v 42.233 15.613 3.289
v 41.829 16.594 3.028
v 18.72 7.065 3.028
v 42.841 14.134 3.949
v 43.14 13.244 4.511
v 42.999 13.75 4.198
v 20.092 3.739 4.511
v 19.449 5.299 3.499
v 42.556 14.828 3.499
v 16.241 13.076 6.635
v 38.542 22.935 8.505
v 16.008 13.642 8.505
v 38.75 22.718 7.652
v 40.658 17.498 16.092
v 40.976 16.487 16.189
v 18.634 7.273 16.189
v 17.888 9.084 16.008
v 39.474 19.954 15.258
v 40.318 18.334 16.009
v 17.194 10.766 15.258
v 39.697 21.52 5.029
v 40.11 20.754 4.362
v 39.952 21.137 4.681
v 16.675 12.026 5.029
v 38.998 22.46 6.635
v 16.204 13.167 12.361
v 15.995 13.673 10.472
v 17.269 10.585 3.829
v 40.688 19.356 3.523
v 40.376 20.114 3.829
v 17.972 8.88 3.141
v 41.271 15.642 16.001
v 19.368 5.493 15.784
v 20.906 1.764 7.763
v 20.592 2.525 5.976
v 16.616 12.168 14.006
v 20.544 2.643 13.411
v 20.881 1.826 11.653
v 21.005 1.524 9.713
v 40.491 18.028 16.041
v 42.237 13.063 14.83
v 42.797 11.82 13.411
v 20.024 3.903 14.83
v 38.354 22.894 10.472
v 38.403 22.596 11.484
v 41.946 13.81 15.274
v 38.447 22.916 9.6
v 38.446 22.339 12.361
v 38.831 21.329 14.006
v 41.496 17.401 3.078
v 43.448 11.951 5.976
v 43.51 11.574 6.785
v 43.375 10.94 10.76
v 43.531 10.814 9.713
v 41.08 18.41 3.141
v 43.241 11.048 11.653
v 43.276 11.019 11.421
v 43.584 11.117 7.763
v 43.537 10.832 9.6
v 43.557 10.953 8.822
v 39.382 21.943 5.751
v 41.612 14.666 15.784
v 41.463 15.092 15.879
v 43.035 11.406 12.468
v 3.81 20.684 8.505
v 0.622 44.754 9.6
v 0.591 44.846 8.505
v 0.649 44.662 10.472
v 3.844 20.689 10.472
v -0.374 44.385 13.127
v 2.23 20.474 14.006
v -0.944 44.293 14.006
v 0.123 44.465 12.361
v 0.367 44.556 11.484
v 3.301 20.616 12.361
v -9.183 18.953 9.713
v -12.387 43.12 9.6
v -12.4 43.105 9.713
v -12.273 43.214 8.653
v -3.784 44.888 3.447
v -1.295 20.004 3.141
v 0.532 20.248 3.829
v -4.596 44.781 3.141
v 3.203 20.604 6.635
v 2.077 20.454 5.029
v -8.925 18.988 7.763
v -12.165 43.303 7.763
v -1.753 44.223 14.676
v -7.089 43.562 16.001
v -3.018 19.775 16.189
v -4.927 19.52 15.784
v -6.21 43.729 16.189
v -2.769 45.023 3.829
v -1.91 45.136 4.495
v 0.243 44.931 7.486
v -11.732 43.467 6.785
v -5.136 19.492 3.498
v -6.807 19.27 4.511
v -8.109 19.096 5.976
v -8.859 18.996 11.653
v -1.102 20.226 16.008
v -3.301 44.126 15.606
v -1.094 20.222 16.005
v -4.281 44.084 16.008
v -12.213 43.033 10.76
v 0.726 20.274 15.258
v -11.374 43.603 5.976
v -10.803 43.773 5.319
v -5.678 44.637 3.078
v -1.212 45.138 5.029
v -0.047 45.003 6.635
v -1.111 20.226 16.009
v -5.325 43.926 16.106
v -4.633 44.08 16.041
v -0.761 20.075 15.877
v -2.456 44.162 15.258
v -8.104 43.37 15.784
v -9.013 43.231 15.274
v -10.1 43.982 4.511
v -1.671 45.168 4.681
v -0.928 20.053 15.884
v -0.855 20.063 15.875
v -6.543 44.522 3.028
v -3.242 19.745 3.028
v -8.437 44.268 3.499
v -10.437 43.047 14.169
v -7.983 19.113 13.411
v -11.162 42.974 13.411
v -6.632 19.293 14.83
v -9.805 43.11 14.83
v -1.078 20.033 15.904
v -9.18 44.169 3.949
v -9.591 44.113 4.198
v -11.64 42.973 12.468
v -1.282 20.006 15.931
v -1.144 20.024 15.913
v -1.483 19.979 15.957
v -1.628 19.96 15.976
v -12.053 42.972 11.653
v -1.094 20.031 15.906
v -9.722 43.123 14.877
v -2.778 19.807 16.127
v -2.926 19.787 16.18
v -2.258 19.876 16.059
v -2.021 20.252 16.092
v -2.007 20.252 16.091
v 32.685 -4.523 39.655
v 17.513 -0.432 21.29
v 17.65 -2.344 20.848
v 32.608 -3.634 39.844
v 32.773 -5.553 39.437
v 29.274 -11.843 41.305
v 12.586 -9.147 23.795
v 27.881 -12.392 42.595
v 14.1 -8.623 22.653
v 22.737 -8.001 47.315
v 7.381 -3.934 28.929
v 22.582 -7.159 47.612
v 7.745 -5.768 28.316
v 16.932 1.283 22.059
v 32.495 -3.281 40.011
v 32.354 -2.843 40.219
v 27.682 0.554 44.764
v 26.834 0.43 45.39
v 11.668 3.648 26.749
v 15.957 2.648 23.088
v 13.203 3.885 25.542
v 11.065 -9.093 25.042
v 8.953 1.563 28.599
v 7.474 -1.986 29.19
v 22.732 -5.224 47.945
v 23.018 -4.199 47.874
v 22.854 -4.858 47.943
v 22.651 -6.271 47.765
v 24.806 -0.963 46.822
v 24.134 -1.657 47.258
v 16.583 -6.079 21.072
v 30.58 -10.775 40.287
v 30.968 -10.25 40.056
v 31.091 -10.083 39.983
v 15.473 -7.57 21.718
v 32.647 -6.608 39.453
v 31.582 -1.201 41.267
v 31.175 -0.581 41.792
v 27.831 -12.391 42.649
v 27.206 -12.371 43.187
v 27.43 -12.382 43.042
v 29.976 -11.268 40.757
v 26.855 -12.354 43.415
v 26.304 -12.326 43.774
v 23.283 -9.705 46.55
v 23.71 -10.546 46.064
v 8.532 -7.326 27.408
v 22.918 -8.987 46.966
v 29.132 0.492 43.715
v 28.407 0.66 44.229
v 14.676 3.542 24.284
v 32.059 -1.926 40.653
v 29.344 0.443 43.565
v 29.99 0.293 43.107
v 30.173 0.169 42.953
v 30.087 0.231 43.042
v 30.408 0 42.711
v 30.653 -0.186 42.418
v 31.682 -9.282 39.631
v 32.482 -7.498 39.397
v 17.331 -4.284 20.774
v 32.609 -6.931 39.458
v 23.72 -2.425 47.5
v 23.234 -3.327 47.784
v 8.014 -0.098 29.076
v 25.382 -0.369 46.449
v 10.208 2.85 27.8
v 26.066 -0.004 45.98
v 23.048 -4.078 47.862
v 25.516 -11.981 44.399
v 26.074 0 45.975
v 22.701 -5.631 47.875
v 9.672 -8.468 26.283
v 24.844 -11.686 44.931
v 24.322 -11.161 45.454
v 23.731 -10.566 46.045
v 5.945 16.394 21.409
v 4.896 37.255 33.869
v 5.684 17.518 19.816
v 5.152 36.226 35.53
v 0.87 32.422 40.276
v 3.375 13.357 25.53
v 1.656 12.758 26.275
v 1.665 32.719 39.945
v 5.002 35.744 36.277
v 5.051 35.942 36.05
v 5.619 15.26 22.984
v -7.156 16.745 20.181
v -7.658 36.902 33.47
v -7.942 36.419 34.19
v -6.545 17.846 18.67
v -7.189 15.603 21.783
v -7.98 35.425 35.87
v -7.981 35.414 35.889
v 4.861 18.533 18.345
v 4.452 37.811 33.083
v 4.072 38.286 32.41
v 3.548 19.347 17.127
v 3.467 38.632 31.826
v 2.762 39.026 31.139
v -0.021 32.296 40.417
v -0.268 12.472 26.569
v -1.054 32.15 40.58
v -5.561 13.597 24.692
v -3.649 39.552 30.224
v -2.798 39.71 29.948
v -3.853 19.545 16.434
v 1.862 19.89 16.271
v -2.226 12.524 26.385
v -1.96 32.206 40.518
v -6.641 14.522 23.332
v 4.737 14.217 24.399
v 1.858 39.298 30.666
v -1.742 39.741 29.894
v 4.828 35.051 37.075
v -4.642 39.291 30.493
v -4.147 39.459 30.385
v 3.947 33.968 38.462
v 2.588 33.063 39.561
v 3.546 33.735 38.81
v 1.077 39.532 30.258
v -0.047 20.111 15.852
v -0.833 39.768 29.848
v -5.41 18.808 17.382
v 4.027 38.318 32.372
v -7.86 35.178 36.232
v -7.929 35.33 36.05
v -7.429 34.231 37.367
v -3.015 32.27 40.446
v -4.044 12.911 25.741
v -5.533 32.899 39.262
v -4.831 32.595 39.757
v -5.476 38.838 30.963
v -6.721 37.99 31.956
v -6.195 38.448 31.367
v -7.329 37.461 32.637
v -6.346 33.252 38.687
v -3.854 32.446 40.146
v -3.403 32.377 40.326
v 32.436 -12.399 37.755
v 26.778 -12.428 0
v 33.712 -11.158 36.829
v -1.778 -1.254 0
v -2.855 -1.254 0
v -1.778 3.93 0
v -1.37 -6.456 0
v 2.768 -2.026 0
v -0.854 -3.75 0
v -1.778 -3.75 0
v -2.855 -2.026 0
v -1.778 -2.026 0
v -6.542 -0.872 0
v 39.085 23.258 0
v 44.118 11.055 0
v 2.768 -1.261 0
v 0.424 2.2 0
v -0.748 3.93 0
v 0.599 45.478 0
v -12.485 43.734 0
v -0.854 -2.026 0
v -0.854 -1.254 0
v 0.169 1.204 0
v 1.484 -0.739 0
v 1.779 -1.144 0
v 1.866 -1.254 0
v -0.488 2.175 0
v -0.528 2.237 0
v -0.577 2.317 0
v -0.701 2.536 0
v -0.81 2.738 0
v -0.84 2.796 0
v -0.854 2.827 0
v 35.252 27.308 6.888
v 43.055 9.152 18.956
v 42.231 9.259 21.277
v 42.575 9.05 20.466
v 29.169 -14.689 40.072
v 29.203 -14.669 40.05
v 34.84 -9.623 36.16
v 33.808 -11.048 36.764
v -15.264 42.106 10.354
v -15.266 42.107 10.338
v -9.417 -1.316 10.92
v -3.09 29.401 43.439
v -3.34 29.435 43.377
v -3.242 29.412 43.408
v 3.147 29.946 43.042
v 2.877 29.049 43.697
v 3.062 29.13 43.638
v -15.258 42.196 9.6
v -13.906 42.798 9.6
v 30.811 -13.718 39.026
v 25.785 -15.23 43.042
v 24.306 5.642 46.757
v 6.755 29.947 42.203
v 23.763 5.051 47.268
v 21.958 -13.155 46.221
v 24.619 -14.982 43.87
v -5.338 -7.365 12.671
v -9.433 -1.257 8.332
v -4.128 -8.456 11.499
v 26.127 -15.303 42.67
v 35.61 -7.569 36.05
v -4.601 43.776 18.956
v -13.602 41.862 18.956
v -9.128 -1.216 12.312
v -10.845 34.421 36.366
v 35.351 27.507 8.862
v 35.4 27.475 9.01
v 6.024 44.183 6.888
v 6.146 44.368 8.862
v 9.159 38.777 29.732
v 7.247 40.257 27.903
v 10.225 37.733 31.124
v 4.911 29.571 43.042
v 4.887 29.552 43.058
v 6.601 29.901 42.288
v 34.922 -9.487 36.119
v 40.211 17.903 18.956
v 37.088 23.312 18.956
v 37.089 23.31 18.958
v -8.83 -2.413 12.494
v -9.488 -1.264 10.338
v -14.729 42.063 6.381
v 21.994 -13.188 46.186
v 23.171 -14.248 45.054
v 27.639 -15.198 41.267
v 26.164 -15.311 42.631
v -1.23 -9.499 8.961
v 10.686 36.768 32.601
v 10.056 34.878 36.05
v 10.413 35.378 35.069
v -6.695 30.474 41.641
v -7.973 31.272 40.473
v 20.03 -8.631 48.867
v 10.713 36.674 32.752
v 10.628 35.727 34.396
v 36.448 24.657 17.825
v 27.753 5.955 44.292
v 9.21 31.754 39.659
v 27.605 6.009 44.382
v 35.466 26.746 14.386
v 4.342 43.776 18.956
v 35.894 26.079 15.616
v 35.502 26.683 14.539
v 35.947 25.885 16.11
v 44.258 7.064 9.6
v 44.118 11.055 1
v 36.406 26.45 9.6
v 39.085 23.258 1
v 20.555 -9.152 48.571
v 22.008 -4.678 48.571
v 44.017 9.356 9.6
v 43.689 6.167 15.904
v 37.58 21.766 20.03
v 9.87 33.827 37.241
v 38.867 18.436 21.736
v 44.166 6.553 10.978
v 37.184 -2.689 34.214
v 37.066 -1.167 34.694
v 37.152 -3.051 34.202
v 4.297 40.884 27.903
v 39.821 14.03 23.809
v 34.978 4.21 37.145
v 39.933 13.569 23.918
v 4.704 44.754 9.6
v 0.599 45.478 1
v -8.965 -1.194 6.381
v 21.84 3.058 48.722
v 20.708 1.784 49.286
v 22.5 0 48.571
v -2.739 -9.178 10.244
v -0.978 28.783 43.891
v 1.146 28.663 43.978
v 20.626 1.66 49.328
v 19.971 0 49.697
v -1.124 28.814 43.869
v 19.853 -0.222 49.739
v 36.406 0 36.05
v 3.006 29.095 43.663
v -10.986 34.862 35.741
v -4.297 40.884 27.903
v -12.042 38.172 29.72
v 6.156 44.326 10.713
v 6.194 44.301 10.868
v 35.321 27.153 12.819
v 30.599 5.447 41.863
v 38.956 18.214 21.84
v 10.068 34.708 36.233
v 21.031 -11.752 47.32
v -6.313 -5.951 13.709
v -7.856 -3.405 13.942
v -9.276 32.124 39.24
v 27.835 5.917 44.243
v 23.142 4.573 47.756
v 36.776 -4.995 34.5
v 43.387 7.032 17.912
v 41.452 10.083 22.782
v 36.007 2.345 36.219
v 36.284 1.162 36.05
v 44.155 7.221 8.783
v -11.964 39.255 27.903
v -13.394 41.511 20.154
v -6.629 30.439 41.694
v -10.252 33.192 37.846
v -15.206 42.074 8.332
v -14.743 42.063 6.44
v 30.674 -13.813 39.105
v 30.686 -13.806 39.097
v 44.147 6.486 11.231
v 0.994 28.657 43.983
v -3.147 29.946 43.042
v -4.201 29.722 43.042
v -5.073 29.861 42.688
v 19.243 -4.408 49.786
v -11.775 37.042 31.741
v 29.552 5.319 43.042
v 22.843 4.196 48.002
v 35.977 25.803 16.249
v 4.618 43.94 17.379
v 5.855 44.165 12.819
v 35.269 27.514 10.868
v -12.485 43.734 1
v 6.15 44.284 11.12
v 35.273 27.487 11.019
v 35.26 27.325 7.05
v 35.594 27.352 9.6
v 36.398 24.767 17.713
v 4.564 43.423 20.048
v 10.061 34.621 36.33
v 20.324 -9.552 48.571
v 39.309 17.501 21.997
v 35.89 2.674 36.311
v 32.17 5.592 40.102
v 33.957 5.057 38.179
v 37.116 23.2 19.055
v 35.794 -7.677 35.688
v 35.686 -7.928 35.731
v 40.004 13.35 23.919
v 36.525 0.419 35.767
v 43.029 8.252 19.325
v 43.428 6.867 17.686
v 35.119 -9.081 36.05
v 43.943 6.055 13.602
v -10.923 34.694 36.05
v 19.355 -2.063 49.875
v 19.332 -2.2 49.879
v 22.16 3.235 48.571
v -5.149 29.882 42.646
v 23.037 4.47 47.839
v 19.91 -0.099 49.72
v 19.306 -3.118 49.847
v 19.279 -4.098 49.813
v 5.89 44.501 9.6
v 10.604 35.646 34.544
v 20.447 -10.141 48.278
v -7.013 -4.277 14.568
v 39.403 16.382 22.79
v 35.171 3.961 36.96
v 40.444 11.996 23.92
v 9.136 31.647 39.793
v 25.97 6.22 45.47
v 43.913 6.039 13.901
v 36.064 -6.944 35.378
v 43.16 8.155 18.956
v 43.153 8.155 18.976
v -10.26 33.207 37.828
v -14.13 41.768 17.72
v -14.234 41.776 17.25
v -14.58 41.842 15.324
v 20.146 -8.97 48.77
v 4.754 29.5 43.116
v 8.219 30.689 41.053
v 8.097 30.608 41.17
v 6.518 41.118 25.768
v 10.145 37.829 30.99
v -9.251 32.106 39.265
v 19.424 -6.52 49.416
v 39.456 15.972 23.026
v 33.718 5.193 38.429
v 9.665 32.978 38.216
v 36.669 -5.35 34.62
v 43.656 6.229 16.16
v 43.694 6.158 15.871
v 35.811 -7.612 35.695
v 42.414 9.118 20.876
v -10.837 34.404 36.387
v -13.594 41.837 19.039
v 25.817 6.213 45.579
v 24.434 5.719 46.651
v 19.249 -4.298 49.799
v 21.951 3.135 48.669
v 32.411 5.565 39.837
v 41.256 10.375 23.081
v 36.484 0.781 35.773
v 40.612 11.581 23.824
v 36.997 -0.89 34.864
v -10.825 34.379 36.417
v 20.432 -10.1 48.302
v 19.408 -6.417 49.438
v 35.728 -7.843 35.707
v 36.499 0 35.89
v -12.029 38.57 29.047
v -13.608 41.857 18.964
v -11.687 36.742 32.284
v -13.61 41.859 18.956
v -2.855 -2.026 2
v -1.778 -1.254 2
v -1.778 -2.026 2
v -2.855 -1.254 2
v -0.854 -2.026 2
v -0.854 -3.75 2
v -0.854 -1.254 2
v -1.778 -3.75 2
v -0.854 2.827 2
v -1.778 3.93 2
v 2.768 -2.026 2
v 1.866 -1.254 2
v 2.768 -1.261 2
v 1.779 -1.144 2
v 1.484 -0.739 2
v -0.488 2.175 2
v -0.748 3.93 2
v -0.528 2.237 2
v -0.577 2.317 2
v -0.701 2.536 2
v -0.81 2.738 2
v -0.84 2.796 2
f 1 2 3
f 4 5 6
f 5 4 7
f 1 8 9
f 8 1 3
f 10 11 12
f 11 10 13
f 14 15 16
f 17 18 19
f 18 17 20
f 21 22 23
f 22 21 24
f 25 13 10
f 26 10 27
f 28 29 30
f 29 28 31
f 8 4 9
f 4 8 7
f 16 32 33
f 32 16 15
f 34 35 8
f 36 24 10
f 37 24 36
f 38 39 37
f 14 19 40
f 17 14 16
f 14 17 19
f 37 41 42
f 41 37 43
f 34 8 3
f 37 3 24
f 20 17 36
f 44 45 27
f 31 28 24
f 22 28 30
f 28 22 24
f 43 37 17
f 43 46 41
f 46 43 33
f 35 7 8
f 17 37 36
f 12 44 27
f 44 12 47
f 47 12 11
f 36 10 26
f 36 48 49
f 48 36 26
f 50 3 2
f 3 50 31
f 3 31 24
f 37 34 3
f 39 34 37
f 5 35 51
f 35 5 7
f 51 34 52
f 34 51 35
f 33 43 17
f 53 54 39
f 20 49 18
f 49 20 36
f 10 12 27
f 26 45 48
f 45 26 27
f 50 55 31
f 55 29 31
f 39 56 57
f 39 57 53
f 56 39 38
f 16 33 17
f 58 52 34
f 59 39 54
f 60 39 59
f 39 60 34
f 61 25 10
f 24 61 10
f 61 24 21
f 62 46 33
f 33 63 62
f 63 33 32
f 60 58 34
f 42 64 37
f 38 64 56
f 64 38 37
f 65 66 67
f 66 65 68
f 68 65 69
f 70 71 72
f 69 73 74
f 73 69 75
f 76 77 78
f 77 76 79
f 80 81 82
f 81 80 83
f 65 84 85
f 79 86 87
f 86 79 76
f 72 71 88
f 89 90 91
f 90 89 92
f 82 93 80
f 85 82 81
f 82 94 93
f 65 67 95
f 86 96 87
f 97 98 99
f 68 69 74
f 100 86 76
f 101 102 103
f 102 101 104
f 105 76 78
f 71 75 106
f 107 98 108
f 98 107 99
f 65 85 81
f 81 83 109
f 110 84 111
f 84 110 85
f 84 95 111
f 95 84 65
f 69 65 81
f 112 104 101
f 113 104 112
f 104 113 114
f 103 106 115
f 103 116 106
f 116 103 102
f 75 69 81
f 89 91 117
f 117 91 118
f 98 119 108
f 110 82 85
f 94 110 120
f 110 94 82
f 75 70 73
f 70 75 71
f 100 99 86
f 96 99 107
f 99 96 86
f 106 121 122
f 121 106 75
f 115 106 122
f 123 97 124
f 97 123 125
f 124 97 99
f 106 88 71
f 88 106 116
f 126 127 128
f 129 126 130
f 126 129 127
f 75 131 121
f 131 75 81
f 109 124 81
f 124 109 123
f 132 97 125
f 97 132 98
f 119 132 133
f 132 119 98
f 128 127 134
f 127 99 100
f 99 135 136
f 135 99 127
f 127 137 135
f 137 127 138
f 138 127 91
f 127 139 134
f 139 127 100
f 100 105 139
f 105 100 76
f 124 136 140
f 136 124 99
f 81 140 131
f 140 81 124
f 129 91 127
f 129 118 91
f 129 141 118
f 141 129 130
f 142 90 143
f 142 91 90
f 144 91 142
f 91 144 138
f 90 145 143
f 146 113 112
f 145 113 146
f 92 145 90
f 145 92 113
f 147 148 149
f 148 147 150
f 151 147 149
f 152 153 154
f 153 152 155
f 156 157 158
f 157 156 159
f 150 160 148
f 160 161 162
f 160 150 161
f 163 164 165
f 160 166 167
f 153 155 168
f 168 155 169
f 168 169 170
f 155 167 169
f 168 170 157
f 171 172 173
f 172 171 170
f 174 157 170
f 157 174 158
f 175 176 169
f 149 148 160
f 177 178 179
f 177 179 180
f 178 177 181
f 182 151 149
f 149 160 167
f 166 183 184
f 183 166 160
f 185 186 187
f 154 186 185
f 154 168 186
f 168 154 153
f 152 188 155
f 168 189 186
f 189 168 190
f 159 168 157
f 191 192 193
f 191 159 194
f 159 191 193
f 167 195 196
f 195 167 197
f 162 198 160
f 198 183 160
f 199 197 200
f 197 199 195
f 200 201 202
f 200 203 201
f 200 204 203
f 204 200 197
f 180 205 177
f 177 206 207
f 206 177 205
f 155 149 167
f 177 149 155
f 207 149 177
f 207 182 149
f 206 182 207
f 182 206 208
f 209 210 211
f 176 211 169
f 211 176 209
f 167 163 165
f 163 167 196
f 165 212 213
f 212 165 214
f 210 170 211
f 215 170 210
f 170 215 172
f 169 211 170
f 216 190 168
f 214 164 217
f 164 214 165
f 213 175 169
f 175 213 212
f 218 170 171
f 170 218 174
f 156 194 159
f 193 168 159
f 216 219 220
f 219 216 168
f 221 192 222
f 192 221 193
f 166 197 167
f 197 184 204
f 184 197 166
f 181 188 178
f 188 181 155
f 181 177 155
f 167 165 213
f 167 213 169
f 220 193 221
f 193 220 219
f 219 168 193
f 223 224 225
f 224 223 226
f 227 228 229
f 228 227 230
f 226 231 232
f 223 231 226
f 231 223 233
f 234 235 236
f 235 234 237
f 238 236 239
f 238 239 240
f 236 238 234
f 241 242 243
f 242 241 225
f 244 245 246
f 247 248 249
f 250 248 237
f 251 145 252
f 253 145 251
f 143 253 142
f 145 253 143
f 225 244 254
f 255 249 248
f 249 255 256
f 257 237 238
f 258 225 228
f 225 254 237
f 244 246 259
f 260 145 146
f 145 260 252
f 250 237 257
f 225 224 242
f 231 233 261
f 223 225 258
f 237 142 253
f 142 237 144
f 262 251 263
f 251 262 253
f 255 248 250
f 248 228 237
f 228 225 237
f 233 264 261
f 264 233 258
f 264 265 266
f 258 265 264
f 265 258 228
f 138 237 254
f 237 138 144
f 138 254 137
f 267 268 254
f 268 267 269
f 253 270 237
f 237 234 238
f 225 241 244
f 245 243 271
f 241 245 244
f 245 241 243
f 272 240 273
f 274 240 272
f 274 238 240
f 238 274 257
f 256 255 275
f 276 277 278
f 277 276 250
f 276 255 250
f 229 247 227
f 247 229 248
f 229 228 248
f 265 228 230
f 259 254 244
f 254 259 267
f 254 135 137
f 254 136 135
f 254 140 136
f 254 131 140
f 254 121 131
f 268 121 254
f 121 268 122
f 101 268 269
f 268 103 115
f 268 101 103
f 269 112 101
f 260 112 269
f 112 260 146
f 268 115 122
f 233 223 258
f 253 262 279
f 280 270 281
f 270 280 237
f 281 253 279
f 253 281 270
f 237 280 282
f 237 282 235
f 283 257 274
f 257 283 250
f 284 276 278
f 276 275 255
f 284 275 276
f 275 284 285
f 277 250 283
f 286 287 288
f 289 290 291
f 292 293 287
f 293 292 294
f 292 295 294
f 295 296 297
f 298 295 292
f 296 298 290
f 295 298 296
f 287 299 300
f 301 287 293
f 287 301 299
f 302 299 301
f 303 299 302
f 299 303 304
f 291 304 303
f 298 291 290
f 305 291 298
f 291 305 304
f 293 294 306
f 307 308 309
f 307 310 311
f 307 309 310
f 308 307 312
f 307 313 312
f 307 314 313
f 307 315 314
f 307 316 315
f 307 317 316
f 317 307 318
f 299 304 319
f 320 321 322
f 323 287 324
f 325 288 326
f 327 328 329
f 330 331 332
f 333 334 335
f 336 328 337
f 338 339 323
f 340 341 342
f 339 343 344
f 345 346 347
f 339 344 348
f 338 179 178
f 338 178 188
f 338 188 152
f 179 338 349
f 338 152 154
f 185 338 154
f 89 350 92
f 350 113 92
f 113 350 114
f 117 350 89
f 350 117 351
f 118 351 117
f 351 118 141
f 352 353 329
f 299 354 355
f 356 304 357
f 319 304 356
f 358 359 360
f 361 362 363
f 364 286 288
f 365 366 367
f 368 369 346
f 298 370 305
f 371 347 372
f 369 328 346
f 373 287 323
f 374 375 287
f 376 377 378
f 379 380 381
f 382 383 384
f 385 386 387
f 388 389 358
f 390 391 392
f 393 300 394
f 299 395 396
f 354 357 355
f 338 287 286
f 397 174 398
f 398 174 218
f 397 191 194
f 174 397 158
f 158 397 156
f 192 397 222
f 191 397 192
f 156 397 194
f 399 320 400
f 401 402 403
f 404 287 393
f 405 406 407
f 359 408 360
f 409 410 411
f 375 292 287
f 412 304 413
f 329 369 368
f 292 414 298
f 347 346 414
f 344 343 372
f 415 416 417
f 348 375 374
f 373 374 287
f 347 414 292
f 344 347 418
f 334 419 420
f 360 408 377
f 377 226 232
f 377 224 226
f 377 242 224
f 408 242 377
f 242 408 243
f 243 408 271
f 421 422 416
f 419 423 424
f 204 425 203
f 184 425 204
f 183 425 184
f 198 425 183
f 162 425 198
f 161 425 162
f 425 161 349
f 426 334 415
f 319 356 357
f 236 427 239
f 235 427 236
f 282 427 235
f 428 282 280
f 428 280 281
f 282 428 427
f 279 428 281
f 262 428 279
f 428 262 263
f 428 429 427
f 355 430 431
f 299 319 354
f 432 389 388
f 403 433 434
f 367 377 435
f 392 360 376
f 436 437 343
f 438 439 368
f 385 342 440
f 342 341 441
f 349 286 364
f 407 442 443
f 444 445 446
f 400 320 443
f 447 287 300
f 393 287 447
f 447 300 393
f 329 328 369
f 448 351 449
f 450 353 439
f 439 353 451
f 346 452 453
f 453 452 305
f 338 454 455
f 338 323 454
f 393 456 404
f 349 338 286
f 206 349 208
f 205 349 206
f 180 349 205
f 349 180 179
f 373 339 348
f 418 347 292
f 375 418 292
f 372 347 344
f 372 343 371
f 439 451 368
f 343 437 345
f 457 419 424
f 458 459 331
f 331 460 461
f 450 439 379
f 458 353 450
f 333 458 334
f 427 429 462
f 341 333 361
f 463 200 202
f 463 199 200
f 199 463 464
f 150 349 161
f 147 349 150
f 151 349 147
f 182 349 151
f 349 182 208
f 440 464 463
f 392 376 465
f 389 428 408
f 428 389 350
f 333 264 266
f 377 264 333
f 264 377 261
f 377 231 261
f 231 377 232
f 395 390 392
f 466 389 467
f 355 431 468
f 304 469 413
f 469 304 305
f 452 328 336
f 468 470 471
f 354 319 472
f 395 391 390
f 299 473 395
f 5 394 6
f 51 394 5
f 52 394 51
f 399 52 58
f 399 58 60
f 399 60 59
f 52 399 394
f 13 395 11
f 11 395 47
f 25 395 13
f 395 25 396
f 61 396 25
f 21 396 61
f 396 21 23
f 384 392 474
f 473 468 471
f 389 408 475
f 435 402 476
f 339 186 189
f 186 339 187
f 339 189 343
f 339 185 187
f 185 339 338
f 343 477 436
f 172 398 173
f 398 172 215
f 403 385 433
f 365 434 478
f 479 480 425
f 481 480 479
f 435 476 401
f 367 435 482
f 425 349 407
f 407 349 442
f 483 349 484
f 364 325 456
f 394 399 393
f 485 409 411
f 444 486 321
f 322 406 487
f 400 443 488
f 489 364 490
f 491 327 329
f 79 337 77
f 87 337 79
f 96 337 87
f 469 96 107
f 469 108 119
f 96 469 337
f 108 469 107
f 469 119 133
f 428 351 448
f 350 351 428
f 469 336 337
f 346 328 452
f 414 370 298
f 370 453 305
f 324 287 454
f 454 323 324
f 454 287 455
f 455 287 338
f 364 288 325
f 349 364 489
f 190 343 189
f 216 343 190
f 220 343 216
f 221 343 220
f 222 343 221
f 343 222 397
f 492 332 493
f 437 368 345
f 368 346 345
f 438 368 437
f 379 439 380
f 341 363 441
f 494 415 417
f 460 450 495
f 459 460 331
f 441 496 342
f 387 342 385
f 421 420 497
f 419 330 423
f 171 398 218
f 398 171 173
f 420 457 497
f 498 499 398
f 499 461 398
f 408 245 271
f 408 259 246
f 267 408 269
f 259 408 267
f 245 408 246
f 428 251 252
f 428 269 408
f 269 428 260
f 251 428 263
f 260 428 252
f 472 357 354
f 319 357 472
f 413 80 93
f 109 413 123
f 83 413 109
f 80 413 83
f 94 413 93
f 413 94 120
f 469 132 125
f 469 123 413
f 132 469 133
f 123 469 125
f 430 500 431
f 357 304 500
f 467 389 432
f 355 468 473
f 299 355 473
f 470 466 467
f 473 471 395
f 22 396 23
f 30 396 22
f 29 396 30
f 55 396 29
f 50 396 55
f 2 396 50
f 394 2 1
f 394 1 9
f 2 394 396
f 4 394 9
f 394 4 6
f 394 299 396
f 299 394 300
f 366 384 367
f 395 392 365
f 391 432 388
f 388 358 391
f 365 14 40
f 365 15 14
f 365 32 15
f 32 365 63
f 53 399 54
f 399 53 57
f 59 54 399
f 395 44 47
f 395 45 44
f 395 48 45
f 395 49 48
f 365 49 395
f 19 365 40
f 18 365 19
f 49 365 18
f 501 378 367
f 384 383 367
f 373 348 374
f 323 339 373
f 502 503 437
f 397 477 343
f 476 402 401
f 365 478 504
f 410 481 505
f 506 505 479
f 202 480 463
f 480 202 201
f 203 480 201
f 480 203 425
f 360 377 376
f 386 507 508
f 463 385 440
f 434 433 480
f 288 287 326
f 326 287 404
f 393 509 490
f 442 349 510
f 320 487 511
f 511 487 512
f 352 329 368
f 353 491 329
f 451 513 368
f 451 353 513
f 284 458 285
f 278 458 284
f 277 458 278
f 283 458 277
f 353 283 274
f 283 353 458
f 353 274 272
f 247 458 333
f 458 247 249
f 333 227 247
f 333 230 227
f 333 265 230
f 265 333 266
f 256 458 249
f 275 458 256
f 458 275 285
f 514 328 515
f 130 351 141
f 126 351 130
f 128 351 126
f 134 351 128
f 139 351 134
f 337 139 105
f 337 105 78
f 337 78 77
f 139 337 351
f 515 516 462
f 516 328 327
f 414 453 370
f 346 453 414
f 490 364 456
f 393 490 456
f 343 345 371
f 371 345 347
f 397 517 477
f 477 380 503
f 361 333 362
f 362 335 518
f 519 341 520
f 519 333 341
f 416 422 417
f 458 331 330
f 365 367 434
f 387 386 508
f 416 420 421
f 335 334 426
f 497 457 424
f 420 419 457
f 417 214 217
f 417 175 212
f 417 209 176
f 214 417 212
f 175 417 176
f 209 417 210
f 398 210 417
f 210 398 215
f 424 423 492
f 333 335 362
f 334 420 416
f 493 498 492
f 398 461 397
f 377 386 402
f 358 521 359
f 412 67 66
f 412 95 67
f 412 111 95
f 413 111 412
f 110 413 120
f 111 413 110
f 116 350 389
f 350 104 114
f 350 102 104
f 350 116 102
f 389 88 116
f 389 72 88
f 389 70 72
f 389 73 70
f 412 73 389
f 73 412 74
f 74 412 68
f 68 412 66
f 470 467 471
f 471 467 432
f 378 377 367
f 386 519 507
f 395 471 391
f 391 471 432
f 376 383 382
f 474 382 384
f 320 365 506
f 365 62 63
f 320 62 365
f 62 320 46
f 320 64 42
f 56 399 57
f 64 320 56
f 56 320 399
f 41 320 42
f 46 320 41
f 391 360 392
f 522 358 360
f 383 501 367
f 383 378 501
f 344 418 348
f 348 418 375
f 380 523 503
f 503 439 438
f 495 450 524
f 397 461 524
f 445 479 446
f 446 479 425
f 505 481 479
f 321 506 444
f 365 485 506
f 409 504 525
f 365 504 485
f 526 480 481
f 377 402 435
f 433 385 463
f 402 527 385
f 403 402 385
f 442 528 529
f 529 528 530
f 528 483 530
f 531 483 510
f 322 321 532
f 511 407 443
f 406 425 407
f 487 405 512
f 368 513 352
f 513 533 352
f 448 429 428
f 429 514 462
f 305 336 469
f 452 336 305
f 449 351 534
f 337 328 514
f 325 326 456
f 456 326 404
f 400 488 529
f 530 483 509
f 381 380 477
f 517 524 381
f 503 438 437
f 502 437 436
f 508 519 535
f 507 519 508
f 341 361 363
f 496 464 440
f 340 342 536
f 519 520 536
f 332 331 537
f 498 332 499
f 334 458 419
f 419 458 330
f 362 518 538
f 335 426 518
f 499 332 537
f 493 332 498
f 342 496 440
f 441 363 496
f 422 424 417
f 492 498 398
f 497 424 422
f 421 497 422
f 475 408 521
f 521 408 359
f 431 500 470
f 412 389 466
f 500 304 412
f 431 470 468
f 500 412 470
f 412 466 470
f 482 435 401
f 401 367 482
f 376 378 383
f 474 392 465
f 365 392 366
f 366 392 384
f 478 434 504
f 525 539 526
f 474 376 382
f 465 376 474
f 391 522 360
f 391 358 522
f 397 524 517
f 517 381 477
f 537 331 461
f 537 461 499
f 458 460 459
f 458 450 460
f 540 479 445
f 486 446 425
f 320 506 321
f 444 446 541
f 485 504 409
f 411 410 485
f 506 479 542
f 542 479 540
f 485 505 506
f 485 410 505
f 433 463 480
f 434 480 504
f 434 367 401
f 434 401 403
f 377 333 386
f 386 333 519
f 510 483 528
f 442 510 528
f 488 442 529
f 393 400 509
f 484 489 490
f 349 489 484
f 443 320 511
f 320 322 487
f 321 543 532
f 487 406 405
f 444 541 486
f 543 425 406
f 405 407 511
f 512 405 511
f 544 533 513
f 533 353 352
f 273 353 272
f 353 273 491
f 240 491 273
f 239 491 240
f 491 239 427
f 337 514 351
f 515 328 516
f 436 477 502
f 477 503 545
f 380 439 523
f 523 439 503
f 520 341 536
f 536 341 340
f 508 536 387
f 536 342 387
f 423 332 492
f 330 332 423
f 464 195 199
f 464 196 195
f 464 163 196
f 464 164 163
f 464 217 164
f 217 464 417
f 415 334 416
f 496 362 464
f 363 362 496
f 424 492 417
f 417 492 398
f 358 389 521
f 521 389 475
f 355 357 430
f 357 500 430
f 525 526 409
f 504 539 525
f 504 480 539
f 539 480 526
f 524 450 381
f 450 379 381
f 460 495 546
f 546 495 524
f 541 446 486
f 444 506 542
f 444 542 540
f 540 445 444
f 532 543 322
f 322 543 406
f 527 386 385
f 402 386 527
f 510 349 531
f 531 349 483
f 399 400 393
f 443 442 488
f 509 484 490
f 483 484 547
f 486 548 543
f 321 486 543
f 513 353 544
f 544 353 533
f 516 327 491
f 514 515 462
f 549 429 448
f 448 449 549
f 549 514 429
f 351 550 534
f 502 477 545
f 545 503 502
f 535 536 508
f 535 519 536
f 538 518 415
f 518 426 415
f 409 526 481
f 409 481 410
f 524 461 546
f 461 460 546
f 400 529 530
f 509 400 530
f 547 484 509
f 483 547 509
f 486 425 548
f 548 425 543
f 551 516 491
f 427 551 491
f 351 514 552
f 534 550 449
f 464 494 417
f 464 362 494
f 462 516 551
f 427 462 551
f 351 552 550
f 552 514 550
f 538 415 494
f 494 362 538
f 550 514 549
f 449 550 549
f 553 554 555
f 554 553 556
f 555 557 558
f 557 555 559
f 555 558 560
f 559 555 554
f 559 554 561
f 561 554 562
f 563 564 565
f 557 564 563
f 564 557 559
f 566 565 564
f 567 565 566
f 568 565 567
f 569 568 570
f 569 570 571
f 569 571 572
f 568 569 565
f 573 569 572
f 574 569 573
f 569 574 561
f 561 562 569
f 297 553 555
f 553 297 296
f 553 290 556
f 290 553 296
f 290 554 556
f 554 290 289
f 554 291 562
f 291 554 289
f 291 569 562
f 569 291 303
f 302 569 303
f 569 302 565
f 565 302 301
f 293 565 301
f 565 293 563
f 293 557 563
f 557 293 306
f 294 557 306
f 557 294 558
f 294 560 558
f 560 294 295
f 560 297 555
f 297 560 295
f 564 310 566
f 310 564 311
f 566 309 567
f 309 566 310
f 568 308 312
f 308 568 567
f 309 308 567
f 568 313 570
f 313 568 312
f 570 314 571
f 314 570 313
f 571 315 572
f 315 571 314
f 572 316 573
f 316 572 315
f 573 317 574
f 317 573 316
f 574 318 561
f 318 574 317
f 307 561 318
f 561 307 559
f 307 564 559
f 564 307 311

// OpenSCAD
difference() {
	difference() {
		difference() {
			hull() {
				union() {
					union() {
						rotate(a = 22.4109105310, v = [0, 0, 1]) {
							translate(v = [0, -6.6000000000, 0]) {
								cube(size = [45.0000000000, 13.2000000000, 1]);
							}
						}
						rotate(a = 97.5890894690, v = [0, 0, 1]) {
							translate(v = [0, -6.6000000000, 0]) {
								cube(size = [45.0000000000, 13.2000000000, 1]);
							}
						}
						rotate(a = -11.9775063242, v = [0, 0, 1]) {
							translate(v = [0, -6.6000000000, 0]) {
								cube(size = [28.7746391682, 13.2000000000, 1]);
							}
						}
						rotate(a = 92.2882357156, v = [0, 0, 1]) {
							translate(v = [0, -6.6000000000, 0]) {
								cube(size = [36.6667031495, 13.2000000000, 1]);
							}
						}
					}
					translate(v = [0, 0, 9.6000000000]) {
						intersection() {
							hull() {
								rotate(a = 89.9999177095, v = [-0.3812464258, 0.9244734516, -0.0000005432]) {
									cylinder(h = 45, r = 9.6000000000);
								}
								rotate(a = 89.9999458523, v = [-0.9912407072, -0.1320676359, 0.0000011233]) {
									cylinder(h = 45, r = 9.6000000000);
								}
								rotate(a = 39.7497638717, v = [0.1327015173, 0.6255145820, -0.0000007582]) {
									cylinder(h = 45, r = 9.6000000000);
								}
								rotate(a = 54.5690804774, v = [-0.8141653234, -0.0325334230, 0.0000008467]) {
									cylinder(h = 45, r = 9.6000000000);
								}
							}
							sphere(r = 45);
						}
					}
				}
			}
			translate(v = [0, 0, 9.6000000000]) {
				rotate(a = 89.9999177095, v = [-0.3812464258, 0.9244734516, -0.0000005432]) {
					translate(v = [0, 0, 20]) {
						cylinder(h = 45, r = 6.6000000000);
					}
				}
				rotate(a = 89.9999458523, v = [-0.9912407072, -0.1320676359, 0.0000011233]) {
					translate(v = [0, 0, 20]) {
						cylinder(h = 45, r = 6.6000000000);
					}
				}
				rotate(a = 39.7497638717, v = [0.1327015173, 0.6255145820, -0.0000007582]) {
					translate(v = [0, 0, 20]) {
						cylinder(h = 45, r = 6.6000000000);
					}
				}
				rotate(a = 54.5690804774, v = [-0.8141653234, -0.0325334230, 0.0000008467]) {
					translate(v = [0, 0, 20]) {
						cylinder(h = 45, r = 6.6000000000);
					}
				}
			}
		}
		translate(v = [-100, -100, -100]) {
			cube(size = [200, 200, 100]);
		}
	}
	translate(v = [0, 0, 2]) {
		rotate(a = 180, v = [0, 1, 0]) {
			linear_extrude(height = 3) {
				text(halign = "center", size = 8, text = "4", valign = "center");
			}
		}
	}
}
